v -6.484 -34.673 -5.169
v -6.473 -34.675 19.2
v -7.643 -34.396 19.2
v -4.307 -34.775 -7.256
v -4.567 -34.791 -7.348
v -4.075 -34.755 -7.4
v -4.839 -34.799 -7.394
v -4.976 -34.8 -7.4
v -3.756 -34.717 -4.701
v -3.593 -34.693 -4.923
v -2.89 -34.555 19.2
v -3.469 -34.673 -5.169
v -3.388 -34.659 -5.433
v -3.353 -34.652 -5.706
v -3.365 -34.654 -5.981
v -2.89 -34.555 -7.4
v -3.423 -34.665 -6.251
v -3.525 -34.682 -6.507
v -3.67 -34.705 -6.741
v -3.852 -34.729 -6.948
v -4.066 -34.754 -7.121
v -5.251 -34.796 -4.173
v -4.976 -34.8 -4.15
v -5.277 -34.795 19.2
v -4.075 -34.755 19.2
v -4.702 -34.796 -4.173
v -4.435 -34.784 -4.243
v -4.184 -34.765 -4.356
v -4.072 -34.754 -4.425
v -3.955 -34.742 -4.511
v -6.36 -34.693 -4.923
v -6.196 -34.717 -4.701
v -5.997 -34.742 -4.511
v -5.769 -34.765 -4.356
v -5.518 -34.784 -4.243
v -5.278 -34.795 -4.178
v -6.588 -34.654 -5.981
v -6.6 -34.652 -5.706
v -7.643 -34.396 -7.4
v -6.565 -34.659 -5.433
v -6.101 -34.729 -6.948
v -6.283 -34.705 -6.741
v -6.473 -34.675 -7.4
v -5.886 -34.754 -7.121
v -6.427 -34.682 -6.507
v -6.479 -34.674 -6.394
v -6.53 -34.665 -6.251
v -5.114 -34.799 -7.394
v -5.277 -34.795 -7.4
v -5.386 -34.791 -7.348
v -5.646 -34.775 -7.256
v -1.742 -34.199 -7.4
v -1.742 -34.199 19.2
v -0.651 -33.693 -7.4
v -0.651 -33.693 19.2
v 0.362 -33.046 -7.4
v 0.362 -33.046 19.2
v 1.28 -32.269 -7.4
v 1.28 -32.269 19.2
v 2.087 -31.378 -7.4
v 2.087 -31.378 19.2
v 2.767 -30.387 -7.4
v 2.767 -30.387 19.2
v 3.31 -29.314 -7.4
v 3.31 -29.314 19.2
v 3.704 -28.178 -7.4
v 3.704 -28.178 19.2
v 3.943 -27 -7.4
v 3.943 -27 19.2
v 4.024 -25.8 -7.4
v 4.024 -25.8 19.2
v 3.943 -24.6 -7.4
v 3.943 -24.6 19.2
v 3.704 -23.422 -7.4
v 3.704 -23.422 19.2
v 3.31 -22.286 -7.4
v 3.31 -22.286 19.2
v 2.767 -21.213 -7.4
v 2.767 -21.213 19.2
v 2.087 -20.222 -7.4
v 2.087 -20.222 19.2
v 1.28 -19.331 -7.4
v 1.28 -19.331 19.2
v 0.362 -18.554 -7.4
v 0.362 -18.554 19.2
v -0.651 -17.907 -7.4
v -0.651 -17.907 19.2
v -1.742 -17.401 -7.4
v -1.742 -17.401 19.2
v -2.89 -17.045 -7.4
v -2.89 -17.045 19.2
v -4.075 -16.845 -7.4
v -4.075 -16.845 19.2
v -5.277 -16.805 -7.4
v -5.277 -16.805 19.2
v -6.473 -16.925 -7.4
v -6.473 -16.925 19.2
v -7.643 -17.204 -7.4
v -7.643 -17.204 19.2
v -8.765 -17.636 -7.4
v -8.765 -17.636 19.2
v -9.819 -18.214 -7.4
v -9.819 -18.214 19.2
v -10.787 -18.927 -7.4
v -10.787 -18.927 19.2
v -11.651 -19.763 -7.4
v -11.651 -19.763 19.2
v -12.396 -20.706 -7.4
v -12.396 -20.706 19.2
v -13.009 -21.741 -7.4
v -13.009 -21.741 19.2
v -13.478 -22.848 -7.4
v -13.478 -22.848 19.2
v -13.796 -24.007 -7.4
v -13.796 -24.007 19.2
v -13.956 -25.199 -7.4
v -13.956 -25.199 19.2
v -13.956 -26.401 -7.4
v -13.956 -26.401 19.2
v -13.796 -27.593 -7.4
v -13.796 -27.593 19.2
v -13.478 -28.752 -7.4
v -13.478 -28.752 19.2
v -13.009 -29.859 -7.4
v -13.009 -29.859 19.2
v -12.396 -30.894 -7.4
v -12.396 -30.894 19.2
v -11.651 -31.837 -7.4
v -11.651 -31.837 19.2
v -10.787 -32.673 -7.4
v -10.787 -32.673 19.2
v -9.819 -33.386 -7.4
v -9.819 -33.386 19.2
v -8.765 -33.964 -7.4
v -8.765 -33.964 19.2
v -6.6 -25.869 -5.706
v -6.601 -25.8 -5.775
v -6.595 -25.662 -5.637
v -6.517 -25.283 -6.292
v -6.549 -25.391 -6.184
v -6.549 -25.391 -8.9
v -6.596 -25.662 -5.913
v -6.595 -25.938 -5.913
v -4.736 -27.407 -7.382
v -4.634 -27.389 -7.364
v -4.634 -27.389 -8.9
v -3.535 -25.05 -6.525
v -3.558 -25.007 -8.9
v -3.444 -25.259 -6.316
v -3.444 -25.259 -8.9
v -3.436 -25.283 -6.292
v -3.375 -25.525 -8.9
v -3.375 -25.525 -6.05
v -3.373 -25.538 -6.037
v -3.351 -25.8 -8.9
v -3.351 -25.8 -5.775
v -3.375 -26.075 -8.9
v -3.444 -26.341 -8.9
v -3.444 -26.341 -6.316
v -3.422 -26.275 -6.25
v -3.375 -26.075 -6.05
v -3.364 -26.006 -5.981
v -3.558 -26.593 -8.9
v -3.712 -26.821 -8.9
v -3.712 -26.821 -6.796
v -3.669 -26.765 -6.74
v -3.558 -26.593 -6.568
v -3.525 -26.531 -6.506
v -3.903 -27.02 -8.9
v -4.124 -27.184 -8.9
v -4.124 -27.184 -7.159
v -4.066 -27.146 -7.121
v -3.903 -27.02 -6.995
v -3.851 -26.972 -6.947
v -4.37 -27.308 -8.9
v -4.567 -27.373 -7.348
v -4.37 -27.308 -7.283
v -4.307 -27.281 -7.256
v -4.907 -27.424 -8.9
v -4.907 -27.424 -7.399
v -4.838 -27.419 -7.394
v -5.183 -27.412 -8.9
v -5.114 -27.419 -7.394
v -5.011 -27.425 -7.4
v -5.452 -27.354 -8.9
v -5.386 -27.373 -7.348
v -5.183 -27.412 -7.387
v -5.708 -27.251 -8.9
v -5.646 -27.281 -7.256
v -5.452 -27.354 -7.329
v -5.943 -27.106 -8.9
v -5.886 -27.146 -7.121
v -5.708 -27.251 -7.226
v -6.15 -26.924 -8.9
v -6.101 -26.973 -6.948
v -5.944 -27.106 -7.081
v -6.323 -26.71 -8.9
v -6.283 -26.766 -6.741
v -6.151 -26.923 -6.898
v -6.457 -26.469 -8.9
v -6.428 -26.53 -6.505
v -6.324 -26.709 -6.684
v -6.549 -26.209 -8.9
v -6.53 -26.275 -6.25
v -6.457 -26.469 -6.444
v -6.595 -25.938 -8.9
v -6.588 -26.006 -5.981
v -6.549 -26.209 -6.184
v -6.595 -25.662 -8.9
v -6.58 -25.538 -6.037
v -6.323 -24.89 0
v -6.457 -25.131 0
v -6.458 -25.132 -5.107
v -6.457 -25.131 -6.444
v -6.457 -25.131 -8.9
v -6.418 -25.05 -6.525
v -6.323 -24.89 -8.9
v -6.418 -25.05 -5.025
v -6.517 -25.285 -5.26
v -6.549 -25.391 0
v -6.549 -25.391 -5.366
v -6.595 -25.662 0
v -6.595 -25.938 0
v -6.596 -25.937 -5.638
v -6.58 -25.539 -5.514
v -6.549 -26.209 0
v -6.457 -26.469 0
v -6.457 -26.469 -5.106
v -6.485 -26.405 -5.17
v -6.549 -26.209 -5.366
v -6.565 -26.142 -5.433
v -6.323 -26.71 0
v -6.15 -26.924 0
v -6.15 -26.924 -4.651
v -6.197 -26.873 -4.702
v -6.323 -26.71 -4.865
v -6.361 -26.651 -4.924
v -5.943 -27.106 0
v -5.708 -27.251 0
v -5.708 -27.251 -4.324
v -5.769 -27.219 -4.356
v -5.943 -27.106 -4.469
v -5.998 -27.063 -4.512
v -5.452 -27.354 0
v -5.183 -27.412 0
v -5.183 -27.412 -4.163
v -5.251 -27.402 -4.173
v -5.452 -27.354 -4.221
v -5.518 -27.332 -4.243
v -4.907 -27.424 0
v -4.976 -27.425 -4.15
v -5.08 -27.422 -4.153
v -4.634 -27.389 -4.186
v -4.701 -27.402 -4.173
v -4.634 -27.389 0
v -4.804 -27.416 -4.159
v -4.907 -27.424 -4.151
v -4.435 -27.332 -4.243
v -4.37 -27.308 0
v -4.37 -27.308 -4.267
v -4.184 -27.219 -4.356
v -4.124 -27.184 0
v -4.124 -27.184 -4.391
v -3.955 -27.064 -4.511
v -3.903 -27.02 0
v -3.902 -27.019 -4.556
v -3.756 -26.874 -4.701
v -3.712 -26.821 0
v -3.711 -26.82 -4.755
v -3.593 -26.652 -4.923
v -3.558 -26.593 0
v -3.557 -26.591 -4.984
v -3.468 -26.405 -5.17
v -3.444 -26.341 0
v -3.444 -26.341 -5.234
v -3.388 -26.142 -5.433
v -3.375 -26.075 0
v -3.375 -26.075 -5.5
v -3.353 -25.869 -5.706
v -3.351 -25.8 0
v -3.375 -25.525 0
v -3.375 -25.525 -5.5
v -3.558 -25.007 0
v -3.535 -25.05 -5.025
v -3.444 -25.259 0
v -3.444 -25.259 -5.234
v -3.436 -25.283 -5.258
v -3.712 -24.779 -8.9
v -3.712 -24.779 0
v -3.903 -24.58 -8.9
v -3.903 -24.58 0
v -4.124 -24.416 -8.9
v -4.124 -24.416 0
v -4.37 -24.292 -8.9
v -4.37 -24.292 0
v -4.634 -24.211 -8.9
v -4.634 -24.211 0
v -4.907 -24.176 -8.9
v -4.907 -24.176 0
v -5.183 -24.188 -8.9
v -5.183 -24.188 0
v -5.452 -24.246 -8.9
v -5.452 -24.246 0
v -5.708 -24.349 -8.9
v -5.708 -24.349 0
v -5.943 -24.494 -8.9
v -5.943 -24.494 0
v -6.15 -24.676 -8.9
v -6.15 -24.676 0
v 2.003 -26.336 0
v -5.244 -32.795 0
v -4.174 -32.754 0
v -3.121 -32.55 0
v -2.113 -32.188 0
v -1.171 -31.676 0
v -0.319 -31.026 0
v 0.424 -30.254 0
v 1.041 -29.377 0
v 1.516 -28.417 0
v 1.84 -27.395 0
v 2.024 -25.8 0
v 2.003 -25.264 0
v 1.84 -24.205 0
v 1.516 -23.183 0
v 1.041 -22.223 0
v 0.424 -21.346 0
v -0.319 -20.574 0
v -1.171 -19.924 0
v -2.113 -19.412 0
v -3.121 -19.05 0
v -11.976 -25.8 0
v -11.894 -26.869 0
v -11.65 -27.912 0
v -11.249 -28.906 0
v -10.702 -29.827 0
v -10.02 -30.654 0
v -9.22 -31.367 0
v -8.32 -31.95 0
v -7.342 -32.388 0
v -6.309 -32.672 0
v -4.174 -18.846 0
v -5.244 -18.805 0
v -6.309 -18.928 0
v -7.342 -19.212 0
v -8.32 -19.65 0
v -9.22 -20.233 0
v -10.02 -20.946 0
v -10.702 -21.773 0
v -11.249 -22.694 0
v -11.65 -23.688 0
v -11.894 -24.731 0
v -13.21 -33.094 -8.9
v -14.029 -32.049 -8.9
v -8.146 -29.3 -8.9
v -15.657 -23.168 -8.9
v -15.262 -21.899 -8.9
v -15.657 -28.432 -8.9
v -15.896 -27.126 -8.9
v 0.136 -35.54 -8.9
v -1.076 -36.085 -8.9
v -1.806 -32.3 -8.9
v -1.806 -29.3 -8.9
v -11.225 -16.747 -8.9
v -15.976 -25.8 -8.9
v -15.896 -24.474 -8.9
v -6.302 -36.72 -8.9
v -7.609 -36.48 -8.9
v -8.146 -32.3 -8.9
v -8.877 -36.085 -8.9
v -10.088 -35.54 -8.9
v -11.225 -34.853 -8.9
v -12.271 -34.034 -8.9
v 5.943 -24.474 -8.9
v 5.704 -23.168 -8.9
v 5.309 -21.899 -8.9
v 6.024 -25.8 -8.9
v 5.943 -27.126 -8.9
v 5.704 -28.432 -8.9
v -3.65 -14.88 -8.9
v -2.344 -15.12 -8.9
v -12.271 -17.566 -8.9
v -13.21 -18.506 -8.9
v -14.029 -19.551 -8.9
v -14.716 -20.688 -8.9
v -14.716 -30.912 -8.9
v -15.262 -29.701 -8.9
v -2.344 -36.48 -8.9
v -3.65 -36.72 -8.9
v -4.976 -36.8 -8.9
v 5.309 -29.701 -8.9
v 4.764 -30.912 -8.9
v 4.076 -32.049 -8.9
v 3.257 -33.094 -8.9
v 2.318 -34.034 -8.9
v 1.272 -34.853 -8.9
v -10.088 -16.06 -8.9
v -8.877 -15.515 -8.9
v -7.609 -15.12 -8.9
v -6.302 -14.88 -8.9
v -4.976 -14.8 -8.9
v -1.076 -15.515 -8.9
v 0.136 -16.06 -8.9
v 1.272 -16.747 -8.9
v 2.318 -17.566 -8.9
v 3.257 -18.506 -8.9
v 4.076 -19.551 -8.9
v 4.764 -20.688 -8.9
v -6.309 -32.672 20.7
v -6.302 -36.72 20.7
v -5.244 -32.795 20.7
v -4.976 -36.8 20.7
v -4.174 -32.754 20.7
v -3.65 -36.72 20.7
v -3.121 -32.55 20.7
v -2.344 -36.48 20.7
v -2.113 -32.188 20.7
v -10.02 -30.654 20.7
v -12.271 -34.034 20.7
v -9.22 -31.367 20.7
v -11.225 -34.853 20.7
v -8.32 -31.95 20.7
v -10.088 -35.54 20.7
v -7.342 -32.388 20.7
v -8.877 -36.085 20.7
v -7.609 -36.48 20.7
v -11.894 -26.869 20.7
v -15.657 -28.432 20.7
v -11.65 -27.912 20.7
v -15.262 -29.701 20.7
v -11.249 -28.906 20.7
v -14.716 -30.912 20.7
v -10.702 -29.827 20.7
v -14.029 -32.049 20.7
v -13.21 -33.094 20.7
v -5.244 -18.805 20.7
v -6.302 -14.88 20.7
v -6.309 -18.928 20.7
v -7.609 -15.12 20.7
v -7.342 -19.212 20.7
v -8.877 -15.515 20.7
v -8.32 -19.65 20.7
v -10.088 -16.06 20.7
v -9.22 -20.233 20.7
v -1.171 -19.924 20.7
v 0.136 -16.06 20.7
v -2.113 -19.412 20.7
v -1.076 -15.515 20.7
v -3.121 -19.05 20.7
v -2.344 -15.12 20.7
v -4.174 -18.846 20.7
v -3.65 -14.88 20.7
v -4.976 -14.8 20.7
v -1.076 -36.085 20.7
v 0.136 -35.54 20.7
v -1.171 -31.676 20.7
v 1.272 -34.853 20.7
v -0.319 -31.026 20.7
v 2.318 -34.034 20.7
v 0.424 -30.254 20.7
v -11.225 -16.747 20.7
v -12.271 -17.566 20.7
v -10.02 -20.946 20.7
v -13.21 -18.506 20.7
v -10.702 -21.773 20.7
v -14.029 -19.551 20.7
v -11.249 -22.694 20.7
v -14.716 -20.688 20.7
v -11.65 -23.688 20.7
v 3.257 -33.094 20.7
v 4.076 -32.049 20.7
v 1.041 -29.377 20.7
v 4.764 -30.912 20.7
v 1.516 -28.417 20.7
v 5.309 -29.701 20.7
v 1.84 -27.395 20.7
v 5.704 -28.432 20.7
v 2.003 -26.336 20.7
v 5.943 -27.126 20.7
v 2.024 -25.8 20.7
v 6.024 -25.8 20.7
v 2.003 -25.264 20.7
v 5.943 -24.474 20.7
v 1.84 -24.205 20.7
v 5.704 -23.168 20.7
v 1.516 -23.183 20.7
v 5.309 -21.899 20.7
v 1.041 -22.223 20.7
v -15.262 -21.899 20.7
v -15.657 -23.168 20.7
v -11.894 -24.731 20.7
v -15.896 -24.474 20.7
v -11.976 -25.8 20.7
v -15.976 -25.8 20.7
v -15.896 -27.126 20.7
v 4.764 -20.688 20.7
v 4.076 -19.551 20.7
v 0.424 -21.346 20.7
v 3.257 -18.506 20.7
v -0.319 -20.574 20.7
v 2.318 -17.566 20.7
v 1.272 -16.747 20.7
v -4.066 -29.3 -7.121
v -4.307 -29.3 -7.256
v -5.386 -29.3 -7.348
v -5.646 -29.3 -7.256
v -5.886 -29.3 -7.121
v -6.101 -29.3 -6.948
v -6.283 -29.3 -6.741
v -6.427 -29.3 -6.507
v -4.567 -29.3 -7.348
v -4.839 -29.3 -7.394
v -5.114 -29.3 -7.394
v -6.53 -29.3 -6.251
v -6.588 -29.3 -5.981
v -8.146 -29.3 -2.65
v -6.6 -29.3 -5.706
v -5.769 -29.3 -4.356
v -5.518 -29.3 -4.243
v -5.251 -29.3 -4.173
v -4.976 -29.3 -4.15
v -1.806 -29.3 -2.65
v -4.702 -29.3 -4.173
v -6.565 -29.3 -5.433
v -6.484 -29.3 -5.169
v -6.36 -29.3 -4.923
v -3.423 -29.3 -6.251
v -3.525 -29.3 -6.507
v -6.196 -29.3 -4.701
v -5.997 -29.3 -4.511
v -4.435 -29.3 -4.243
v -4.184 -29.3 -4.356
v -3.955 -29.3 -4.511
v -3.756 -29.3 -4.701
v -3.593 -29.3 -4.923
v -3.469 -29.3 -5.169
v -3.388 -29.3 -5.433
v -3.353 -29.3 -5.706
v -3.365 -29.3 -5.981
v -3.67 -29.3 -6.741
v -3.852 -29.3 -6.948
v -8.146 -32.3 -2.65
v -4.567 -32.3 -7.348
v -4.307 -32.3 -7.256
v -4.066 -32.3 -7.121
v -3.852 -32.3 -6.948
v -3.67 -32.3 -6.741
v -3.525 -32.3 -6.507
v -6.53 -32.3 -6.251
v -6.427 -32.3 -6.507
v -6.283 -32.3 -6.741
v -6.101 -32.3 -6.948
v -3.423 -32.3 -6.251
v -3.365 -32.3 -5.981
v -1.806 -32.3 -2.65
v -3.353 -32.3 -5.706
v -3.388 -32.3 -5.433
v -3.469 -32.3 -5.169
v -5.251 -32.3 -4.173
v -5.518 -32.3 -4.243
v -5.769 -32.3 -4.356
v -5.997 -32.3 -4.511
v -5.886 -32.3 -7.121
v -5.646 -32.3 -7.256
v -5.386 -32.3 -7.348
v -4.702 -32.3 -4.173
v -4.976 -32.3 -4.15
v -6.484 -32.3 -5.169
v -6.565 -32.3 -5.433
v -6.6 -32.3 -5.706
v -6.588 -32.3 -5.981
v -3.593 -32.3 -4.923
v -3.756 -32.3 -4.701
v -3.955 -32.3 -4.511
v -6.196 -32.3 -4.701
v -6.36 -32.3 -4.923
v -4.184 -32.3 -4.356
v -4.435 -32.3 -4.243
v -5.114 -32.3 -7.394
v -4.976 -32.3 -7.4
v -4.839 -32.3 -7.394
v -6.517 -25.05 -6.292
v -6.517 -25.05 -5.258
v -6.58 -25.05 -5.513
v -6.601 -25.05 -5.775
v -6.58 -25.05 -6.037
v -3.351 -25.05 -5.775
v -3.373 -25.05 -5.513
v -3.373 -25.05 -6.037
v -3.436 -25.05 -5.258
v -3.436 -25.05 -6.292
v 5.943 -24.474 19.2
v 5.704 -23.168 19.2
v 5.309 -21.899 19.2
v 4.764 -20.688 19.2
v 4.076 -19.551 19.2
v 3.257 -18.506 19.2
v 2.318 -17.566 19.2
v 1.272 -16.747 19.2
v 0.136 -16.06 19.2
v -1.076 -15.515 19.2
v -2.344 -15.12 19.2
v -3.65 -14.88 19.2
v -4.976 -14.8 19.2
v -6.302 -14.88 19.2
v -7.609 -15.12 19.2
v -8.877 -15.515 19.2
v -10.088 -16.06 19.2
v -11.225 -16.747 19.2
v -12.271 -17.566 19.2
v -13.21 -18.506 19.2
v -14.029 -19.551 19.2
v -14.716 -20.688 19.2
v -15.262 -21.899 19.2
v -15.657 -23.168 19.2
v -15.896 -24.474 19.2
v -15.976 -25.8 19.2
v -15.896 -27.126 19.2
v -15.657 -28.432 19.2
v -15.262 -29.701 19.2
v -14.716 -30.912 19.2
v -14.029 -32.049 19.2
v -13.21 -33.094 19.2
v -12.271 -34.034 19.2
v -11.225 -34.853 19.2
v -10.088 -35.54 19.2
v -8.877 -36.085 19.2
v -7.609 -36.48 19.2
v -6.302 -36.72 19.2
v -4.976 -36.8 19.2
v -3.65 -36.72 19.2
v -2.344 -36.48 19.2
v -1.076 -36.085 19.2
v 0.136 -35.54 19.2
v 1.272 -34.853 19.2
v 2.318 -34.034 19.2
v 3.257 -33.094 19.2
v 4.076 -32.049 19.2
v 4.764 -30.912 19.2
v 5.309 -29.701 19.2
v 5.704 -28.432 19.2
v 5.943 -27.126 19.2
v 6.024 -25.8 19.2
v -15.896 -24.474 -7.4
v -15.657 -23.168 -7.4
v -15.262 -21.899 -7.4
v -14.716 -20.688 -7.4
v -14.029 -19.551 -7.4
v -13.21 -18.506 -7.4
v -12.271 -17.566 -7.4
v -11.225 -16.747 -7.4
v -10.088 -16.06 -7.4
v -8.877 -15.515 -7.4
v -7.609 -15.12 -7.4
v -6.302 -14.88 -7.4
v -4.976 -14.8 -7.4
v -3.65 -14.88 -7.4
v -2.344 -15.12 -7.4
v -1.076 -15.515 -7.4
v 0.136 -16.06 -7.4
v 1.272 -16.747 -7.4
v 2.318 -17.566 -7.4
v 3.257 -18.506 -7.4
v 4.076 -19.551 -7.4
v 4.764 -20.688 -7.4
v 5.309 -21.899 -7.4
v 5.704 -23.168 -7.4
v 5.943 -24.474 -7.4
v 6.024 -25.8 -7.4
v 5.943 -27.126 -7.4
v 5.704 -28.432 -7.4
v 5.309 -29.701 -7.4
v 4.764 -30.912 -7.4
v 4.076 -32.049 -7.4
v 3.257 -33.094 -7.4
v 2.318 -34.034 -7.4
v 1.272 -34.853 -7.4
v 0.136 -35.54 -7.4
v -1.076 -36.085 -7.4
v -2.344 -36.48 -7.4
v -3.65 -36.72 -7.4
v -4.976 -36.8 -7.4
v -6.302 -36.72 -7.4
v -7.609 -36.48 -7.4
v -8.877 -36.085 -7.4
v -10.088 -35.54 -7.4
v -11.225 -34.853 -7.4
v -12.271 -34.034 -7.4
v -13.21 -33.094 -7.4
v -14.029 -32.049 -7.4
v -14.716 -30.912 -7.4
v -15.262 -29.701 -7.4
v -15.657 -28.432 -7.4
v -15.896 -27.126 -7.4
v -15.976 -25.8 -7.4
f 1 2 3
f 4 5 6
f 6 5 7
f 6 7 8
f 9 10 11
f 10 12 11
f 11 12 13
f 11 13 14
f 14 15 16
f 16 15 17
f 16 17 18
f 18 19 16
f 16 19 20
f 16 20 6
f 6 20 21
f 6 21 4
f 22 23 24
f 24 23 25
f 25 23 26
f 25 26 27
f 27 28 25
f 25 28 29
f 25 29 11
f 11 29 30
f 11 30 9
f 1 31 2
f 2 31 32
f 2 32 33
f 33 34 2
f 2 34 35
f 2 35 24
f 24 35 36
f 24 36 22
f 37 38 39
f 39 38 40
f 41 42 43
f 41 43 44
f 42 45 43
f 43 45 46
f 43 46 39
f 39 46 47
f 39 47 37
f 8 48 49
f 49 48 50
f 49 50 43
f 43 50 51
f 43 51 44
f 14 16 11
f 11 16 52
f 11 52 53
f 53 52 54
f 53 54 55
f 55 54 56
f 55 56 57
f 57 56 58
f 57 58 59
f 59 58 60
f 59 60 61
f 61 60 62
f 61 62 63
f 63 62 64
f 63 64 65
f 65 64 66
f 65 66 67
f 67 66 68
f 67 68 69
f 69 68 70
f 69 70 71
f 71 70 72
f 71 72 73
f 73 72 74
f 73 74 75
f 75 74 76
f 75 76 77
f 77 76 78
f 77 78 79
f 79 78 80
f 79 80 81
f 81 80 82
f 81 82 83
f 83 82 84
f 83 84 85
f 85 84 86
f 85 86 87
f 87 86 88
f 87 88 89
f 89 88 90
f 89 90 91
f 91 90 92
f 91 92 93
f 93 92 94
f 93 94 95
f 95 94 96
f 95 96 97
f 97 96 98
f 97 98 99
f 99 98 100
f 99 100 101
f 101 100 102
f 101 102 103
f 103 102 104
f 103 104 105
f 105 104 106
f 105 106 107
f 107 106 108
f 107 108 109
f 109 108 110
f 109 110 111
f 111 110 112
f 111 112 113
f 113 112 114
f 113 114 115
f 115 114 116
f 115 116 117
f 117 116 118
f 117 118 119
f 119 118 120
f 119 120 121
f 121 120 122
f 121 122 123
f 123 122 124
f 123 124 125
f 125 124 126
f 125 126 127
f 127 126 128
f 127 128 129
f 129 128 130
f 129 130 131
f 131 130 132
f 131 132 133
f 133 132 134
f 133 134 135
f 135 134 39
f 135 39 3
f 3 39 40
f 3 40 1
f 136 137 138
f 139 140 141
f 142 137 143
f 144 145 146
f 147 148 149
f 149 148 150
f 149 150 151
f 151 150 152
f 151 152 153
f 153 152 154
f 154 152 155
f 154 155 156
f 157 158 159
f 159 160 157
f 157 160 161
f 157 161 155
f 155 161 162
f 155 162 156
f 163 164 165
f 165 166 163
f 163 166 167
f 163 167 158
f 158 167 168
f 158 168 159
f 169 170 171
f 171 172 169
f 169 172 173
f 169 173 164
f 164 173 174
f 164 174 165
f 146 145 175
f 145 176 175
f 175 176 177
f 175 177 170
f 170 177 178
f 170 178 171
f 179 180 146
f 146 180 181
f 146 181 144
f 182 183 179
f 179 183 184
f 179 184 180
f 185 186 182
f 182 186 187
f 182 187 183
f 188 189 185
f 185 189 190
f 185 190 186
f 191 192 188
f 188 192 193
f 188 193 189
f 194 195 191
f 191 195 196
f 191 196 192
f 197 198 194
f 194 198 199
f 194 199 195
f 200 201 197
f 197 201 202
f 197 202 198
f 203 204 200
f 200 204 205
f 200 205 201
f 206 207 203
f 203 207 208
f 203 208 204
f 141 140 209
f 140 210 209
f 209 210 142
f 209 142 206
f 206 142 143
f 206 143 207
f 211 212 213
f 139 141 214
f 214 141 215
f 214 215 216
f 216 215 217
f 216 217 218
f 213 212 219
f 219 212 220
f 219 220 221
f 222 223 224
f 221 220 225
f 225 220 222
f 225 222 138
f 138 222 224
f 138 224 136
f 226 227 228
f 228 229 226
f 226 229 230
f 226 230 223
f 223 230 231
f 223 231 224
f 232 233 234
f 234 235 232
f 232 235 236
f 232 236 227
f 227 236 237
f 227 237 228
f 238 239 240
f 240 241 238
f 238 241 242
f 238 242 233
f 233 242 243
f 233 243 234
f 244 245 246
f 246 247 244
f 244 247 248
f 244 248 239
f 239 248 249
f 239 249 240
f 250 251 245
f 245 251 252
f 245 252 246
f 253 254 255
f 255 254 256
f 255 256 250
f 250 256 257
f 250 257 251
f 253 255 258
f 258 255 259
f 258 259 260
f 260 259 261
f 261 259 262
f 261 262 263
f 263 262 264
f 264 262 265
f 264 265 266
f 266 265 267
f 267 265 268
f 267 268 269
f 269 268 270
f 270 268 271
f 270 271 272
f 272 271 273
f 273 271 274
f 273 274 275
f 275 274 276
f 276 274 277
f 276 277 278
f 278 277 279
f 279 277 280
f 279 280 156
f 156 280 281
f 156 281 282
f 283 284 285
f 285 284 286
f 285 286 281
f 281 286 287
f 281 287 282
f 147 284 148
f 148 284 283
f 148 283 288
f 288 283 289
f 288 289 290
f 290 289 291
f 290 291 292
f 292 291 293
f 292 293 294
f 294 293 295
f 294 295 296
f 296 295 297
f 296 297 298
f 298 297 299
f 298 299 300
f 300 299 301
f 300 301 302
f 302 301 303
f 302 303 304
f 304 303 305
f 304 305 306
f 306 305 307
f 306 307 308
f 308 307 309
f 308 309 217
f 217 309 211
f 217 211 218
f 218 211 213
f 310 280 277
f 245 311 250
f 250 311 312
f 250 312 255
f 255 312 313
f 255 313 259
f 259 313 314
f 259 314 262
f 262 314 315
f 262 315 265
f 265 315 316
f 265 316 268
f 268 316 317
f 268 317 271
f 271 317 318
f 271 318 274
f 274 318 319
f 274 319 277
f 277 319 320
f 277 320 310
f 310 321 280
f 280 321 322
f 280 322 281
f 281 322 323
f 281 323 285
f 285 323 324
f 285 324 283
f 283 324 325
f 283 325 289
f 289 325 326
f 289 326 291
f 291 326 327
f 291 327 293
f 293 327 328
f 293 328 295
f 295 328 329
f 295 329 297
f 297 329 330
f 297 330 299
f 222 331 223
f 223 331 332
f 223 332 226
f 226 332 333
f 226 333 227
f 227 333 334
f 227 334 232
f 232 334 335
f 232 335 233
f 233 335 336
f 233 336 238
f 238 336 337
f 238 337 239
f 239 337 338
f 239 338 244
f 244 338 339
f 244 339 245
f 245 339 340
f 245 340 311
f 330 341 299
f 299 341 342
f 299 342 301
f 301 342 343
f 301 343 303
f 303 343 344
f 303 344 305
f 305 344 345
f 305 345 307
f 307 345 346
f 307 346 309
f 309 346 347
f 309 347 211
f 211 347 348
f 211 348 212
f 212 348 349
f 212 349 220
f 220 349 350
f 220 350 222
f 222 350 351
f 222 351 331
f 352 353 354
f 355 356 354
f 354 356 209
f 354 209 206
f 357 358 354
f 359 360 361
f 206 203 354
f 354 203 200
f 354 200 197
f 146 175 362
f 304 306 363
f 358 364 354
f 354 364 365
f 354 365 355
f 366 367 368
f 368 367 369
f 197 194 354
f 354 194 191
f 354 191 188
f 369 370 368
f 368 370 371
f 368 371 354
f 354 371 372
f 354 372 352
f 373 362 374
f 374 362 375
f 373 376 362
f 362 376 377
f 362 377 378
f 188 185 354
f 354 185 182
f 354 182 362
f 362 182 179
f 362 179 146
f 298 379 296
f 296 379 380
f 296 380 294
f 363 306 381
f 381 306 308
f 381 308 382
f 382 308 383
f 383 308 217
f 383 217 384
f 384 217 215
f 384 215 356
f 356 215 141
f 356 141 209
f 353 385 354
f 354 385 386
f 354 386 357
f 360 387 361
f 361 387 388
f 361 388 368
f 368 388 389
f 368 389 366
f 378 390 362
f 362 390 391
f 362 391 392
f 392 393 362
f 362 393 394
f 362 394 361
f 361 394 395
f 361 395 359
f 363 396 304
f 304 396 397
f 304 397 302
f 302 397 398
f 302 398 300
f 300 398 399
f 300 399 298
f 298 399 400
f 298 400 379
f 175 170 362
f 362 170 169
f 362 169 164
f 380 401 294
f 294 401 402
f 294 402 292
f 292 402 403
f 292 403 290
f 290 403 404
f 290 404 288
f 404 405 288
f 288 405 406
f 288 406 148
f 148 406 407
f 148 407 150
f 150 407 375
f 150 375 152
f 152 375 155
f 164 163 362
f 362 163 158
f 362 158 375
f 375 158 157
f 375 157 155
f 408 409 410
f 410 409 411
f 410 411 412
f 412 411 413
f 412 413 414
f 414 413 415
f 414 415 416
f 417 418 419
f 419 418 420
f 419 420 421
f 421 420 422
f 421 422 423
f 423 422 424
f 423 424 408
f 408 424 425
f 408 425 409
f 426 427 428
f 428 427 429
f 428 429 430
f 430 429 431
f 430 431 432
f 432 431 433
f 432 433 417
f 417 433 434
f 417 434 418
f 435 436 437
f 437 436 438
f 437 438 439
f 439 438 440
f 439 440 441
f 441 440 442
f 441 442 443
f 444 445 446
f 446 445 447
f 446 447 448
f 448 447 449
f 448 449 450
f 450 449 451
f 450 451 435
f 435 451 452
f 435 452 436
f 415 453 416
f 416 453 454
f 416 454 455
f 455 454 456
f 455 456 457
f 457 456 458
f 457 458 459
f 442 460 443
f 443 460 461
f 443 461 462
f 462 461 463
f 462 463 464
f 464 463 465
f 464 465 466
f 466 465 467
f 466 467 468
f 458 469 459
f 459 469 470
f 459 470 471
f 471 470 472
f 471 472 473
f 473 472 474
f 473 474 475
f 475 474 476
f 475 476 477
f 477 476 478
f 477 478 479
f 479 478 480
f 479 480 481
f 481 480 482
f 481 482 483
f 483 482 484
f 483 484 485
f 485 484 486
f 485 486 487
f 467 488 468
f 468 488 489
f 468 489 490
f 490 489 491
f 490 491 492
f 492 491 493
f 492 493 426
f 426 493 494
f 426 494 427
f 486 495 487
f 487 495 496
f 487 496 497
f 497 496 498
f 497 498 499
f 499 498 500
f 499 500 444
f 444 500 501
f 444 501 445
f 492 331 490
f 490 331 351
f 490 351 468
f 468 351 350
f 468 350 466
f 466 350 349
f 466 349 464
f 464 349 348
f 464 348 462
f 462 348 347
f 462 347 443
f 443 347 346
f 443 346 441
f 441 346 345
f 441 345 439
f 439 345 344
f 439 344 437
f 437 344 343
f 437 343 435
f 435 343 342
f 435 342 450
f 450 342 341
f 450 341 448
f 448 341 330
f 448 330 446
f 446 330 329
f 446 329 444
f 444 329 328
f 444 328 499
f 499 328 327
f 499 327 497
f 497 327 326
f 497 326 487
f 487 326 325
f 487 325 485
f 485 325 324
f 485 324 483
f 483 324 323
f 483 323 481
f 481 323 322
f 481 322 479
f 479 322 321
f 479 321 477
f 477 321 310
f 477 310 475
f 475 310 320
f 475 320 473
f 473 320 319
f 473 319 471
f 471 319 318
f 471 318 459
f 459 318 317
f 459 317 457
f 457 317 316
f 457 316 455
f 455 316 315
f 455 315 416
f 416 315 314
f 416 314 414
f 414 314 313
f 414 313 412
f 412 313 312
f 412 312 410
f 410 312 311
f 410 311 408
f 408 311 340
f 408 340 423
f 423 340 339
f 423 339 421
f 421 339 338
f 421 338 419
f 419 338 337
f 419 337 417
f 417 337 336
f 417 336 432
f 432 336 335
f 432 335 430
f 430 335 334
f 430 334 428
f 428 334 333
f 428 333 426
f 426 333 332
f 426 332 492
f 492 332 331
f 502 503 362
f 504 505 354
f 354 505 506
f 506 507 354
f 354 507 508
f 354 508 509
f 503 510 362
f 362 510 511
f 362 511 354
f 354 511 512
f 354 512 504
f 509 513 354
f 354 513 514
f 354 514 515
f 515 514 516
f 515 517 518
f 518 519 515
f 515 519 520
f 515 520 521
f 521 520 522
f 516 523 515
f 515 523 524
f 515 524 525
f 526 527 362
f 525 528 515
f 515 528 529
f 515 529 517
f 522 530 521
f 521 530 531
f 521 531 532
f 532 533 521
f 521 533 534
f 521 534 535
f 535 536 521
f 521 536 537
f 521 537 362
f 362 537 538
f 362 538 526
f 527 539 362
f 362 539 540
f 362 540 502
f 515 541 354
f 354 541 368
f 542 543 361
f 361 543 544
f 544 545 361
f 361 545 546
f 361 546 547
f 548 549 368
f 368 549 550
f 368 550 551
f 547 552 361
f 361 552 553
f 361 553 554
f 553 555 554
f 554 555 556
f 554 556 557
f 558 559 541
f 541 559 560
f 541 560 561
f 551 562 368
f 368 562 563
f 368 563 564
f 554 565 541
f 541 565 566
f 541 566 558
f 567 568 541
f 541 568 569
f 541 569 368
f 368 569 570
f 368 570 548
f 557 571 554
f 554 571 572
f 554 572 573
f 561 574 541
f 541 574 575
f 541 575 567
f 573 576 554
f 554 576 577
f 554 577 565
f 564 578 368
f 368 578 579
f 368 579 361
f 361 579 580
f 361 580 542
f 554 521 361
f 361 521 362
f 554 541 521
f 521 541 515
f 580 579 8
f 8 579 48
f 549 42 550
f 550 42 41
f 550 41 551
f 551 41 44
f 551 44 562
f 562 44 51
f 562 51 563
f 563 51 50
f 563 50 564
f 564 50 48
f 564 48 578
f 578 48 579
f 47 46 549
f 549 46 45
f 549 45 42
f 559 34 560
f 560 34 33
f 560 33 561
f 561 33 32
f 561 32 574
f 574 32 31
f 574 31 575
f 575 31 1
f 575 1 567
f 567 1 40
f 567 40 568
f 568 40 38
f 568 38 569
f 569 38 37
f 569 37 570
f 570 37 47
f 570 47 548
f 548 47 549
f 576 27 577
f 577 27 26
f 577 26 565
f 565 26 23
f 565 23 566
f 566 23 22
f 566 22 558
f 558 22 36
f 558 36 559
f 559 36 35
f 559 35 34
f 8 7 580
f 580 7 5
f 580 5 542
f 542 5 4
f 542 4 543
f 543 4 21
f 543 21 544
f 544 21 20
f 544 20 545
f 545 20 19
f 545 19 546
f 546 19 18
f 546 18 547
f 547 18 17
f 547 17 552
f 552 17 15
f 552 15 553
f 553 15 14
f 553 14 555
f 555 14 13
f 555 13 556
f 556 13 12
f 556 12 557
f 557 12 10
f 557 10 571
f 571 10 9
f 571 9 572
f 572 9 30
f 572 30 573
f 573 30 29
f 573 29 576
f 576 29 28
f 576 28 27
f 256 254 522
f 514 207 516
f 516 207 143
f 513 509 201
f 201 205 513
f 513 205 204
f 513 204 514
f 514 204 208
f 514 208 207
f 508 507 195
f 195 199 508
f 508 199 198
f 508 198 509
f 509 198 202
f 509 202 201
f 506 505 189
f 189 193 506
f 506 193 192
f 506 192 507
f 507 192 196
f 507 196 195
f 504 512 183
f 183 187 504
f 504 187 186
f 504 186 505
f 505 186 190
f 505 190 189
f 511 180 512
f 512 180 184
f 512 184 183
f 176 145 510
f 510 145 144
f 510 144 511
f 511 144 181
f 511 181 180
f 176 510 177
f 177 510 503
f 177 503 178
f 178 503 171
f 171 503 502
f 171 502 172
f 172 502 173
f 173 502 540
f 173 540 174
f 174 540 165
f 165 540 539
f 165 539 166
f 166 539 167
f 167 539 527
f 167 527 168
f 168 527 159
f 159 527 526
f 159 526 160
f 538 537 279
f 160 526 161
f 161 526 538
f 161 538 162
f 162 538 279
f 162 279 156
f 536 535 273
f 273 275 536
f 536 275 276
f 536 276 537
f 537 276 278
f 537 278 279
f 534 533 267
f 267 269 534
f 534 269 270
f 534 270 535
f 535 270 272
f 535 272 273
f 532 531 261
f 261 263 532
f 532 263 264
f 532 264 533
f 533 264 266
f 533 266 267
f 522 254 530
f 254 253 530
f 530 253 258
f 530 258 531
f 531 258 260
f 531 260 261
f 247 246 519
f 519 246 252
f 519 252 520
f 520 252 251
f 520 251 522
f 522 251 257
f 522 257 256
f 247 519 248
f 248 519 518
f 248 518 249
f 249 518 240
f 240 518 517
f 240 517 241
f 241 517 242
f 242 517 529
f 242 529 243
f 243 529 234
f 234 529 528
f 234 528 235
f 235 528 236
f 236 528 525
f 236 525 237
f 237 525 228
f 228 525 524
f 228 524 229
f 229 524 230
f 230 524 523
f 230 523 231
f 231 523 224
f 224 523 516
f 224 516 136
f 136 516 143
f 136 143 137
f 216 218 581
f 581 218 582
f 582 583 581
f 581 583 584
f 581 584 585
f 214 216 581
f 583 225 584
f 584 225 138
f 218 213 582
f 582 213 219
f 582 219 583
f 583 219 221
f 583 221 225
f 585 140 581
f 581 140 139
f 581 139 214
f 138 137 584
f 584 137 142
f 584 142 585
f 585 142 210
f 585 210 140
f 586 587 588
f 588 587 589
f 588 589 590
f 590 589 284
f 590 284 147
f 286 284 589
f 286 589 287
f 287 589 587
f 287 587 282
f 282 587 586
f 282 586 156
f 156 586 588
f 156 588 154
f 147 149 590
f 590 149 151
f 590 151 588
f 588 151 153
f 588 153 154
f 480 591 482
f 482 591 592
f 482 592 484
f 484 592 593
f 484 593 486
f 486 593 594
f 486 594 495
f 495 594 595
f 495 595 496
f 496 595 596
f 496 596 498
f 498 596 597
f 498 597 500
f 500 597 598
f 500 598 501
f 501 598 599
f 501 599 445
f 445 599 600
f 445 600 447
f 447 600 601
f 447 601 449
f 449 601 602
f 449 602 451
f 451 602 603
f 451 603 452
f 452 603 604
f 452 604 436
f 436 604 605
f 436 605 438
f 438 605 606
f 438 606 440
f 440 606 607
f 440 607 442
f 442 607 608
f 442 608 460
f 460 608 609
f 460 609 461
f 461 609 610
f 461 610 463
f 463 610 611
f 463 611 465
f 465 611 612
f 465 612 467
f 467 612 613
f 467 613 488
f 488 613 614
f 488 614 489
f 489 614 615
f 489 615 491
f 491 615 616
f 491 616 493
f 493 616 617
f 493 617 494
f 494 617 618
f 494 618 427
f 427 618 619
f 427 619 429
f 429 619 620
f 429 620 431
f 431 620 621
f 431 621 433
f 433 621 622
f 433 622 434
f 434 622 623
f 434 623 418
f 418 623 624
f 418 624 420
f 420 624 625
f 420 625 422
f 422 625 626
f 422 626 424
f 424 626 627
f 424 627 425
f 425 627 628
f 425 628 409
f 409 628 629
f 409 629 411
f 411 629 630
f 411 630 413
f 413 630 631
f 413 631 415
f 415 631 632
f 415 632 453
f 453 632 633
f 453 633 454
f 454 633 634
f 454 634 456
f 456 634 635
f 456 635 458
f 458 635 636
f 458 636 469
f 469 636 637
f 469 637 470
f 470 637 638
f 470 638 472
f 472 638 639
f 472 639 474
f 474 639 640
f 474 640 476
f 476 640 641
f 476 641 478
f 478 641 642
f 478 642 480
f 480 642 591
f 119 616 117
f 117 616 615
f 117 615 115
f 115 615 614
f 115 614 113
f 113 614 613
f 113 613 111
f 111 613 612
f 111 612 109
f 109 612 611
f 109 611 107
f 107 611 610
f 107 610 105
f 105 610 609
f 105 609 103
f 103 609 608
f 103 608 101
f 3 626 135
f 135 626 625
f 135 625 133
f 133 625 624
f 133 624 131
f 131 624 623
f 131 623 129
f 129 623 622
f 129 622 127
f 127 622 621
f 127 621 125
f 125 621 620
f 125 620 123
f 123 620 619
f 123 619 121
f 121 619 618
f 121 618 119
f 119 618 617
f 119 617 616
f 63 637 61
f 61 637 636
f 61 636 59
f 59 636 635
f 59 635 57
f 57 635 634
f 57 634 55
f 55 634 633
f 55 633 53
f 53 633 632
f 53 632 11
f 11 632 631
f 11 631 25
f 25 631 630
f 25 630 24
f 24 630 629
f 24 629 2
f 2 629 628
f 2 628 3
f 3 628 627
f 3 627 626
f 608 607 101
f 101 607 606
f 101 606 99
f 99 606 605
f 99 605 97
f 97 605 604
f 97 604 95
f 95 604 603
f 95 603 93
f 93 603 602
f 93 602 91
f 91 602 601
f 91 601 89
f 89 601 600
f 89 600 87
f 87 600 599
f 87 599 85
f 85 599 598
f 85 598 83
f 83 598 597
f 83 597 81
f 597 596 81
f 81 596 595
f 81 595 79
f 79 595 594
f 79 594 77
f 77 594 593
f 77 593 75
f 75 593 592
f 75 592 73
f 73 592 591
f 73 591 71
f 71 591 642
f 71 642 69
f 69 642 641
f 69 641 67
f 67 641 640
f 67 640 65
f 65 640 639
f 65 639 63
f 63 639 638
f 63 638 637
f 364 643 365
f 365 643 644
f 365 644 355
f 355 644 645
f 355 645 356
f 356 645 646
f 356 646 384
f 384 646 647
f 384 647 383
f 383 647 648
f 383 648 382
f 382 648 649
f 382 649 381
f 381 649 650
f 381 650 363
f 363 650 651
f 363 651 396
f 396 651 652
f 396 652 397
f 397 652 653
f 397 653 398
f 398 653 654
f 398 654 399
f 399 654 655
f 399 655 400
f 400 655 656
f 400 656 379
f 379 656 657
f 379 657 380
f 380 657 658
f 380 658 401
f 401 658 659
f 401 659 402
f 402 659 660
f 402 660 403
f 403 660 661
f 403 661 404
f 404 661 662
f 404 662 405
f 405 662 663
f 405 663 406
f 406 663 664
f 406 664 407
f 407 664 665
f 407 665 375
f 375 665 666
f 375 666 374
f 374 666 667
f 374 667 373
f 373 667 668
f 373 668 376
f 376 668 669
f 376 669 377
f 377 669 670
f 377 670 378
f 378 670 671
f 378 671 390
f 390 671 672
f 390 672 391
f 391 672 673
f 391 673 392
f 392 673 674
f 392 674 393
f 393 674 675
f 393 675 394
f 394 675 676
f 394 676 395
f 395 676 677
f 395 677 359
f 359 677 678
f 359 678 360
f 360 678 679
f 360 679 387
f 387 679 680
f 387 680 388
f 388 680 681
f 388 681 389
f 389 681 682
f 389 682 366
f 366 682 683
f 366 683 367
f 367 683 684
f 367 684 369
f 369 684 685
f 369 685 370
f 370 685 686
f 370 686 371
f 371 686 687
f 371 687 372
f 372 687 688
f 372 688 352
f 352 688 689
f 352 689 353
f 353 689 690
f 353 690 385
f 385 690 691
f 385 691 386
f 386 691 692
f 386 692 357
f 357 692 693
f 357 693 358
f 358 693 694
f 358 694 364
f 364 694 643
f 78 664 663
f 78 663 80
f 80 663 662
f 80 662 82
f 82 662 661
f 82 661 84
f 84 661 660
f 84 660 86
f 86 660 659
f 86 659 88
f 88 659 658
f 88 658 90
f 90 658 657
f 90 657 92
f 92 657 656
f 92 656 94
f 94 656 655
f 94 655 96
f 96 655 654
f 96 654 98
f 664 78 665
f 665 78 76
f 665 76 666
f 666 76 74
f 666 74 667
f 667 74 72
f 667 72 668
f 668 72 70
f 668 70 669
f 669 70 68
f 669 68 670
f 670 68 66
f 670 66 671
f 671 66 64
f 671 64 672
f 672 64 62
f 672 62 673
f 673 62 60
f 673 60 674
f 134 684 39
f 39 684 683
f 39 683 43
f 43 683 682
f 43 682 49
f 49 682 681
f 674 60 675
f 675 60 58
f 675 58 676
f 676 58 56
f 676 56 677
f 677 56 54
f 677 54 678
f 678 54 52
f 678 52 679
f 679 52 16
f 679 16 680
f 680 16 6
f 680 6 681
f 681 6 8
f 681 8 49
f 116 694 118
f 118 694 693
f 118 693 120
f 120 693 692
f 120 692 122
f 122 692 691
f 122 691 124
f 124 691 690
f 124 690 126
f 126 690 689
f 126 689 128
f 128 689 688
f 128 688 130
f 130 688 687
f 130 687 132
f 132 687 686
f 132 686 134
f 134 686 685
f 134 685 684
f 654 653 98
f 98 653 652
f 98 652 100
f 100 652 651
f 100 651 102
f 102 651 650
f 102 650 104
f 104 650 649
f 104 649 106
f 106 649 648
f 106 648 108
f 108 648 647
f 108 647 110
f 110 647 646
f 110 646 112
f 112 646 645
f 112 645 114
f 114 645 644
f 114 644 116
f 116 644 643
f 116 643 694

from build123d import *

# Parameters (mm, degrees)
CROQUIS1_R                 = 9
CROQUIS1_R_2               = 1.625
SALIENTE_EXTRUIR1_DEPTH    = 8.9
SALIENTE_EXTRUIR2_START    = 20.7
CROQUIS2_R                 = 9
CROQUIS2_R_2               = 7
SALIENTE_EXTRUIR2_DEPTH    = 20.7
CORTAR_EXTRUIR1_DEPTH      = 6.25
CORTAR_EXTRUIR2_DEPTH      = 7.25
CORTAR_EXTRUIR2_DEPTH_BACK = 4.25
CROQUIS4_R                 = 1.625
CROQUIS7_R                 = 11
CROQUIS7_R_2               = 7
SALIENTE_EXTRUIR3_DEPTH    = 1.5
SALIENTE_EXTRUIR4_START    = -1.5
CROQUIS8_R                 = 11
CROQUIS8_R_2               = 9
SALIENTE_EXTRUIR4_DEPTH    = 1.5


with BuildPart() as part:
    # Croquis1 → Saliente-Extruir1 (new body)
    with BuildSketch(Plane.XY):
        with Locations((-4.976335362, -25.8)):
            Circle(CROQUIS1_R)
        with Locations((-4.976335362, -25.8)):
            Circle(CROQUIS1_R_2, mode=Mode.SUBTRACT)
    extrude(amount=-SALIENTE_EXTRUIR1_DEPTH)

    # Croquis2 → Saliente-Extruir2 (add)
    with BuildSketch(Plane.XY.offset(SALIENTE_EXTRUIR2_START)):
        with Locations((-4.976335362, -25.8)):
            Circle(CROQUIS2_R)
        with Locations((-4.976335362, -25.8)):
            Circle(CROQUIS2_R_2, mode=Mode.SUBTRACT)
    extrude(amount=-SALIENTE_EXTRUIR2_DEPTH)

    # Croquis3 → Cortar-Extruir1 (cut)
    with BuildSketch(Plane(origin=(0, 0, -8.9), x_dir=(-1, 0, 0), z_dir=(0, 0, -1))):
        Polygon((8.146335362, -29.3), (8.146335362, -32.3), (1.806335362, -32.3), (1.806335362, -29.3), (4.976335362, -29.3), align=None)
    extrude(amount=-CORTAR_EXTRUIR1_DEPTH, mode=Mode.SUBTRACT)

    # Croquis4 → Cortar-Extruir2 (cut, two sides: drawn at the far end of the back side and taken through both)
    with BuildSketch(Plane.XZ.offset(29.3).offset(-CORTAR_EXTRUIR2_DEPTH_BACK)):
        with Locations(Location((-4.976335362, -5.775, 0), (0, 0, 90))):
            Circle(CROQUIS4_R)
    extrude(amount=CORTAR_EXTRUIR2_DEPTH + CORTAR_EXTRUIR2_DEPTH_BACK, mode=Mode.SUBTRACT)

    # Croquis7 → Saliente-Extruir3 (add)
    with BuildSketch(Plane.XY.offset(20.7)):
        with Locations((-4.976335362, -25.8)):
            Circle(CROQUIS7_R)
        with Locations((-4.976335362, -25.8)):
            Circle(CROQUIS7_R_2, mode=Mode.SUBTRACT)
    extrude(amount=-SALIENTE_EXTRUIR3_DEPTH)

    # Croquis8 → Saliente-Extruir4 (add)
    with BuildSketch(Plane(origin=(0, 0, -8.9), x_dir=(-1, 0, 0), z_dir=(0, 0, -1)).offset(SALIENTE_EXTRUIR4_START)):
        with Locations(Location((4.976335362, -25.8, 0), (0, 0, 180))):
            Circle(CROQUIS8_R)
        with Locations(Location((4.976335362, -25.8, 0), (0, 0, 180))):
            Circle(CROQUIS8_R_2, mode=Mode.SUBTRACT)
    extrude(amount=SALIENTE_EXTRUIR4_DEPTH)


solid = part.part
